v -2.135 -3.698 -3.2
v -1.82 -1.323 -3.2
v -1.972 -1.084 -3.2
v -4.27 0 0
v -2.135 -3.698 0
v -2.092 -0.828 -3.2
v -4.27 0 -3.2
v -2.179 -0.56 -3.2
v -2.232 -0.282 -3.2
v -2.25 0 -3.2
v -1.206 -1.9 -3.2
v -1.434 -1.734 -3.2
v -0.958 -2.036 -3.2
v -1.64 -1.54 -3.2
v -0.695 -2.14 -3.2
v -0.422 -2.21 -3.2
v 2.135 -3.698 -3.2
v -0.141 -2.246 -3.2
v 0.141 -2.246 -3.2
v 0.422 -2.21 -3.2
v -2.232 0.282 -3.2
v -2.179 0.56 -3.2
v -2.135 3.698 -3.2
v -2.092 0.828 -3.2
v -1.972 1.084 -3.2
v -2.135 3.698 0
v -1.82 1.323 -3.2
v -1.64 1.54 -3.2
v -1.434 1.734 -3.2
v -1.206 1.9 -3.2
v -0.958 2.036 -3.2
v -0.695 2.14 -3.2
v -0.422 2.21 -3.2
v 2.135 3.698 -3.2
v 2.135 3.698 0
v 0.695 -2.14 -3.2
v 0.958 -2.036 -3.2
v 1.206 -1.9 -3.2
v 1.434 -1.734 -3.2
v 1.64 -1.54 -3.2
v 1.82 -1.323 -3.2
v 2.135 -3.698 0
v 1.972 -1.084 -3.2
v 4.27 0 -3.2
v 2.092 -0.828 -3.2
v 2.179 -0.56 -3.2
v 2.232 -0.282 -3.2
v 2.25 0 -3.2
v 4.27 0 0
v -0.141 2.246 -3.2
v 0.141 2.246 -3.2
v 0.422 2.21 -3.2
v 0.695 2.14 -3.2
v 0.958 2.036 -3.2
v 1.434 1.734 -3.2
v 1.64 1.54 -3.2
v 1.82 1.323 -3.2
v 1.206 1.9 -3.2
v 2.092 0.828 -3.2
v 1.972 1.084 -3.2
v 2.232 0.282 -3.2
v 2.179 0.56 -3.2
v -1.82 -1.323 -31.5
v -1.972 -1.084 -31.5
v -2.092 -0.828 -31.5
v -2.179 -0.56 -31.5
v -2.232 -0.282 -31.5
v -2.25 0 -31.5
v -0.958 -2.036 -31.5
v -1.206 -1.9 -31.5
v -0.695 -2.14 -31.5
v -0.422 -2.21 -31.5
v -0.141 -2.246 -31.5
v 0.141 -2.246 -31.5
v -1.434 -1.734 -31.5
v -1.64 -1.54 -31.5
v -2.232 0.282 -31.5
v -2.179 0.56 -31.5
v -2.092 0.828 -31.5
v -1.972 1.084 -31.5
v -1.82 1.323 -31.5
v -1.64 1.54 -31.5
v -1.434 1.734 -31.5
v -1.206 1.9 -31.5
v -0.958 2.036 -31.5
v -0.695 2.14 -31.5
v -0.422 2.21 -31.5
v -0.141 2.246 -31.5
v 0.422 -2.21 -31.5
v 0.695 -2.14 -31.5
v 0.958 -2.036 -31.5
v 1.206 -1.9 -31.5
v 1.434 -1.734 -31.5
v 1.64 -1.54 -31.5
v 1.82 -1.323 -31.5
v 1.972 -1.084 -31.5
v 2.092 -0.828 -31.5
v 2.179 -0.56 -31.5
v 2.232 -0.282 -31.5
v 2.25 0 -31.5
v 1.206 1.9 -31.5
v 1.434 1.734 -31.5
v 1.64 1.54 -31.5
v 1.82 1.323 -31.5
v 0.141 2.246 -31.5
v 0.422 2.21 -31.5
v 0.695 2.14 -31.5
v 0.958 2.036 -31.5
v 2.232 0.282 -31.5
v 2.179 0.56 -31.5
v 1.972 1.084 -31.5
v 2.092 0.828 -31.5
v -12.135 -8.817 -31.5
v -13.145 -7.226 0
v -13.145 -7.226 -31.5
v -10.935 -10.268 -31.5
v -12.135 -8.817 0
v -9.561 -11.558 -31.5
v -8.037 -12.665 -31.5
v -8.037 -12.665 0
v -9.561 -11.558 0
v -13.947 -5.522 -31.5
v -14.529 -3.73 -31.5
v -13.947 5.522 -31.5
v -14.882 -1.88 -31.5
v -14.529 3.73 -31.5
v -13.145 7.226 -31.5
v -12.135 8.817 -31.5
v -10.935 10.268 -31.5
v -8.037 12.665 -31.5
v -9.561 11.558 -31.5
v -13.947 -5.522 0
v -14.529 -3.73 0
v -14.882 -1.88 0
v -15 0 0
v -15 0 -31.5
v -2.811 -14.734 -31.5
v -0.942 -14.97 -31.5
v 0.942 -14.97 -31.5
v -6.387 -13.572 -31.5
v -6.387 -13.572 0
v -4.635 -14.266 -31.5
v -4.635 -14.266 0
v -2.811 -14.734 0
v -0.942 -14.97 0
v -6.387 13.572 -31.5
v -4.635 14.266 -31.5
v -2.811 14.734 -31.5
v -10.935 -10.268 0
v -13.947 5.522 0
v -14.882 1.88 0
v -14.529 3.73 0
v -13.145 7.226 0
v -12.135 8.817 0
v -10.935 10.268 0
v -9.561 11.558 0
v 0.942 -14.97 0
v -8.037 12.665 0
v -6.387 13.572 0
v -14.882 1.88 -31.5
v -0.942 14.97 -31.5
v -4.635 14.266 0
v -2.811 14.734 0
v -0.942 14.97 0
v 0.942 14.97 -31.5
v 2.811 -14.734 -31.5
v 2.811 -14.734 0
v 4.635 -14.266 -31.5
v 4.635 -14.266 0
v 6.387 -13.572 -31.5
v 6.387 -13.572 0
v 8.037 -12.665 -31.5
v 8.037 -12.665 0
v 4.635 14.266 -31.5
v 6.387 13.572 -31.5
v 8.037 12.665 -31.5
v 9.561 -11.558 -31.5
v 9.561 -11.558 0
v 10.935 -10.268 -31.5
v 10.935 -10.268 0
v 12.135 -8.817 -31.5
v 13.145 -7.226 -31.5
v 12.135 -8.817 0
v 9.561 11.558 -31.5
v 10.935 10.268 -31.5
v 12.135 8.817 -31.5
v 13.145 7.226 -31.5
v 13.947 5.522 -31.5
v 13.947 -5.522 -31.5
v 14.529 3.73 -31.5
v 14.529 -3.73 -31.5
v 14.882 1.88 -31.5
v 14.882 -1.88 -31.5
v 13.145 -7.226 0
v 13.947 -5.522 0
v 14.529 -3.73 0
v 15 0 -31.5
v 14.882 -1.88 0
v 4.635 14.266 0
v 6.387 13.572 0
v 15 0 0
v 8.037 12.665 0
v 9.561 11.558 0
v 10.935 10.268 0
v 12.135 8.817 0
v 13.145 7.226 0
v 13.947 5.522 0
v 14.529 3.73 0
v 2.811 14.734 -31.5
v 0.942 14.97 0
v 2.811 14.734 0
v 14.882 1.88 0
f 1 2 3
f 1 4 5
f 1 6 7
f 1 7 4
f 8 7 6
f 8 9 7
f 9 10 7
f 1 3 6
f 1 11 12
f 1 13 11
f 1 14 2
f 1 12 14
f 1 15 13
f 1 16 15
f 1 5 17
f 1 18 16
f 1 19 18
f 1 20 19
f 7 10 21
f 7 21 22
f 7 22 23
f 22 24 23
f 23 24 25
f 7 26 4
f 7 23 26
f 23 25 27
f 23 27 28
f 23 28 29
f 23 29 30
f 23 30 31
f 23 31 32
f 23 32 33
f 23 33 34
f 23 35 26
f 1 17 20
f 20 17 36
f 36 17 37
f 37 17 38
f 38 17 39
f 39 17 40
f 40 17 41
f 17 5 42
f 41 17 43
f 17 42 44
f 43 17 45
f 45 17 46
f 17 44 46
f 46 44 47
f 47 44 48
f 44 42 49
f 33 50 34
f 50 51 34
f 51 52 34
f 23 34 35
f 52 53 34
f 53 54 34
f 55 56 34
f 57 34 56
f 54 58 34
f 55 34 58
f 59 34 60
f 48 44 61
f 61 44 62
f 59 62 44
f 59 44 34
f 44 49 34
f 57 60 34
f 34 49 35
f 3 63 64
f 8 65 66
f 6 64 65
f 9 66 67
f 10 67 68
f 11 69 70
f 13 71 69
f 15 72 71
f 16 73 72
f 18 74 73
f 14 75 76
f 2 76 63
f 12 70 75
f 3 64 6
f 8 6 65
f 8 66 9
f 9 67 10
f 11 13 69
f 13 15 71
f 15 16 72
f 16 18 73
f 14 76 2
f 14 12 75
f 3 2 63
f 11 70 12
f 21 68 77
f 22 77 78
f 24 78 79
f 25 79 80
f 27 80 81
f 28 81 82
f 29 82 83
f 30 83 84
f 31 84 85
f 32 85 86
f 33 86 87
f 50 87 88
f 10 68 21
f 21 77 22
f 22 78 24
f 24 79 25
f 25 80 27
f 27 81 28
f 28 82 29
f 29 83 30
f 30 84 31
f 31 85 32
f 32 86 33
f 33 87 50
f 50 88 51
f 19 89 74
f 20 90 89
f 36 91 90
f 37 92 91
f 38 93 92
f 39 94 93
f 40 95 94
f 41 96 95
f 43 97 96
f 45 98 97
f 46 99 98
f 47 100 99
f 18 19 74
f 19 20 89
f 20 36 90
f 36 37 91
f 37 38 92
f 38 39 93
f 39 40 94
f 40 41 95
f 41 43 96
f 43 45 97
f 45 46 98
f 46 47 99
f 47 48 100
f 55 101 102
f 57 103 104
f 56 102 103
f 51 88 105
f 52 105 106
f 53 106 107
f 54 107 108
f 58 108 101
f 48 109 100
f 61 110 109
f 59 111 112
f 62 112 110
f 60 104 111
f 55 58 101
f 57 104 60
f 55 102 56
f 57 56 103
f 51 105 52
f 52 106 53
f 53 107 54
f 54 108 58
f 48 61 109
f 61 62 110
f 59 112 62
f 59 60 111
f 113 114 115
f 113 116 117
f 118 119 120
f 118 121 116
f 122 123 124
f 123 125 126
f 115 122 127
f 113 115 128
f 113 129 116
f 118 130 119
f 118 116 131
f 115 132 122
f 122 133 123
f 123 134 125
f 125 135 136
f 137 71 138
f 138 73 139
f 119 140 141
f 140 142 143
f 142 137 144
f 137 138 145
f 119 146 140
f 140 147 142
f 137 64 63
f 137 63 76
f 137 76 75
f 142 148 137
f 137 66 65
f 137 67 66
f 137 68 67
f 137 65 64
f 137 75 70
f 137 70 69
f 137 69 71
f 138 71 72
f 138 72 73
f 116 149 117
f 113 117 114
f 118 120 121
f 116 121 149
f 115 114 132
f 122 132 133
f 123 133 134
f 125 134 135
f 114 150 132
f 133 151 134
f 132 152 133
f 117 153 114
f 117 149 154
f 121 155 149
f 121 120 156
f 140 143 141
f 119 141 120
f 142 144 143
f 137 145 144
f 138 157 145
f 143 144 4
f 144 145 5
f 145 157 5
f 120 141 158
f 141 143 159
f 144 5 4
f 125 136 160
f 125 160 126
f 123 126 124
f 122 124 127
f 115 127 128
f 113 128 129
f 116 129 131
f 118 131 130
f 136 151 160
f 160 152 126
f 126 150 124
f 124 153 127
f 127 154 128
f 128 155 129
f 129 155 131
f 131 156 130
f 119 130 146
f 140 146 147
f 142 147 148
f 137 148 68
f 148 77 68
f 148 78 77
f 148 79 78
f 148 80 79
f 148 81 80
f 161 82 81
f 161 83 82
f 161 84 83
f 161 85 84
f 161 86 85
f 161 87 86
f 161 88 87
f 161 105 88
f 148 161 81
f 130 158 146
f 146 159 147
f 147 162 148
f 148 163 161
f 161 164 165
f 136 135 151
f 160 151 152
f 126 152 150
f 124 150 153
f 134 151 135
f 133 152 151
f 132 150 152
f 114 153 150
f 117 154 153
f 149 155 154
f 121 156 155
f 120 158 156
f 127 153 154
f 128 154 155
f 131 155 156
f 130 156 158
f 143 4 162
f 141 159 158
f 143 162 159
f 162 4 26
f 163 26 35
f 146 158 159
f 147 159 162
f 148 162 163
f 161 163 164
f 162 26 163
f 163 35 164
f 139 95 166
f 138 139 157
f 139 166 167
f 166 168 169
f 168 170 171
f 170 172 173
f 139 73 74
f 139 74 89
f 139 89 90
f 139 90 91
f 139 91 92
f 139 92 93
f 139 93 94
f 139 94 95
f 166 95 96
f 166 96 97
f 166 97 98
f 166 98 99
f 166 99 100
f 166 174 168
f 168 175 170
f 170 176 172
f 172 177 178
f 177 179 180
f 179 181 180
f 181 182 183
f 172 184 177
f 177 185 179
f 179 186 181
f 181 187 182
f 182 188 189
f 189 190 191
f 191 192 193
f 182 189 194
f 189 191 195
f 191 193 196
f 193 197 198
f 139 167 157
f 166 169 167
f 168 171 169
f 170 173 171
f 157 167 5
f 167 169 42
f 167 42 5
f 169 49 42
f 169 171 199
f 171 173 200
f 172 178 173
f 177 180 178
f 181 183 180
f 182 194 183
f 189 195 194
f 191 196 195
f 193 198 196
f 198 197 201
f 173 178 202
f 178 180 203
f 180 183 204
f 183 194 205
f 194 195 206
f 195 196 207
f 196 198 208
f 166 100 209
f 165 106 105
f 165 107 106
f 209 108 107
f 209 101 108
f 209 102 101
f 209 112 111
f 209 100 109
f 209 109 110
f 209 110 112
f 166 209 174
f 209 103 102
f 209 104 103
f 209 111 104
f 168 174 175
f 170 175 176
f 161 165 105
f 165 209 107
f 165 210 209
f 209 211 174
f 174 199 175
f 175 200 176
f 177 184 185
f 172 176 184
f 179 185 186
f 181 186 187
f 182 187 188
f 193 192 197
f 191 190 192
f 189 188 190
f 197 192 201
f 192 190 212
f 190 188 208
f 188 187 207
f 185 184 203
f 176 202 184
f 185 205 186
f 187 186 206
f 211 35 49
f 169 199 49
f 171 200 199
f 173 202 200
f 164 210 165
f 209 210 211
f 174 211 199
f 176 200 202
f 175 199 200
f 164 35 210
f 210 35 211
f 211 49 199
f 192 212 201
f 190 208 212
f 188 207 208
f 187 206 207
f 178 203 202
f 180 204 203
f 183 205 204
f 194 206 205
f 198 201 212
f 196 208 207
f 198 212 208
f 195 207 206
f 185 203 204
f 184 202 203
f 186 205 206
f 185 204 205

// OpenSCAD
$fn = 50;

difference() {
	union() {
		translate(v = [0, 0, -31.5]) {
			cylinder(h = 31.5, r = 15.0);
		}
	}
	union() {
		translate(v = [0, 0, 0]) {
			rotate(a = [0, 0, 0]) {
				difference() {
					union() {
						translate(v = [0, 0, -3.2]) {
							linear_extrude(height = 3.2) {
								polygon(points = [[4.2698, 0.0], [2.1349000000000005, 3.697755269078796], [-2.134899999999999, 3.6977552690787965], [-4.2698, 5.228996902999369e-16], [-2.134900000000002, -3.6977552690787956], [2.1348999999999974, -3.697755269078798]]);
							}
						}
					}
					union();
				}
			}
		}
		#translate(v = [0, 0, -100.0]) {
			cylinder(h = 200, r = 2.25);
		}
	}
}
